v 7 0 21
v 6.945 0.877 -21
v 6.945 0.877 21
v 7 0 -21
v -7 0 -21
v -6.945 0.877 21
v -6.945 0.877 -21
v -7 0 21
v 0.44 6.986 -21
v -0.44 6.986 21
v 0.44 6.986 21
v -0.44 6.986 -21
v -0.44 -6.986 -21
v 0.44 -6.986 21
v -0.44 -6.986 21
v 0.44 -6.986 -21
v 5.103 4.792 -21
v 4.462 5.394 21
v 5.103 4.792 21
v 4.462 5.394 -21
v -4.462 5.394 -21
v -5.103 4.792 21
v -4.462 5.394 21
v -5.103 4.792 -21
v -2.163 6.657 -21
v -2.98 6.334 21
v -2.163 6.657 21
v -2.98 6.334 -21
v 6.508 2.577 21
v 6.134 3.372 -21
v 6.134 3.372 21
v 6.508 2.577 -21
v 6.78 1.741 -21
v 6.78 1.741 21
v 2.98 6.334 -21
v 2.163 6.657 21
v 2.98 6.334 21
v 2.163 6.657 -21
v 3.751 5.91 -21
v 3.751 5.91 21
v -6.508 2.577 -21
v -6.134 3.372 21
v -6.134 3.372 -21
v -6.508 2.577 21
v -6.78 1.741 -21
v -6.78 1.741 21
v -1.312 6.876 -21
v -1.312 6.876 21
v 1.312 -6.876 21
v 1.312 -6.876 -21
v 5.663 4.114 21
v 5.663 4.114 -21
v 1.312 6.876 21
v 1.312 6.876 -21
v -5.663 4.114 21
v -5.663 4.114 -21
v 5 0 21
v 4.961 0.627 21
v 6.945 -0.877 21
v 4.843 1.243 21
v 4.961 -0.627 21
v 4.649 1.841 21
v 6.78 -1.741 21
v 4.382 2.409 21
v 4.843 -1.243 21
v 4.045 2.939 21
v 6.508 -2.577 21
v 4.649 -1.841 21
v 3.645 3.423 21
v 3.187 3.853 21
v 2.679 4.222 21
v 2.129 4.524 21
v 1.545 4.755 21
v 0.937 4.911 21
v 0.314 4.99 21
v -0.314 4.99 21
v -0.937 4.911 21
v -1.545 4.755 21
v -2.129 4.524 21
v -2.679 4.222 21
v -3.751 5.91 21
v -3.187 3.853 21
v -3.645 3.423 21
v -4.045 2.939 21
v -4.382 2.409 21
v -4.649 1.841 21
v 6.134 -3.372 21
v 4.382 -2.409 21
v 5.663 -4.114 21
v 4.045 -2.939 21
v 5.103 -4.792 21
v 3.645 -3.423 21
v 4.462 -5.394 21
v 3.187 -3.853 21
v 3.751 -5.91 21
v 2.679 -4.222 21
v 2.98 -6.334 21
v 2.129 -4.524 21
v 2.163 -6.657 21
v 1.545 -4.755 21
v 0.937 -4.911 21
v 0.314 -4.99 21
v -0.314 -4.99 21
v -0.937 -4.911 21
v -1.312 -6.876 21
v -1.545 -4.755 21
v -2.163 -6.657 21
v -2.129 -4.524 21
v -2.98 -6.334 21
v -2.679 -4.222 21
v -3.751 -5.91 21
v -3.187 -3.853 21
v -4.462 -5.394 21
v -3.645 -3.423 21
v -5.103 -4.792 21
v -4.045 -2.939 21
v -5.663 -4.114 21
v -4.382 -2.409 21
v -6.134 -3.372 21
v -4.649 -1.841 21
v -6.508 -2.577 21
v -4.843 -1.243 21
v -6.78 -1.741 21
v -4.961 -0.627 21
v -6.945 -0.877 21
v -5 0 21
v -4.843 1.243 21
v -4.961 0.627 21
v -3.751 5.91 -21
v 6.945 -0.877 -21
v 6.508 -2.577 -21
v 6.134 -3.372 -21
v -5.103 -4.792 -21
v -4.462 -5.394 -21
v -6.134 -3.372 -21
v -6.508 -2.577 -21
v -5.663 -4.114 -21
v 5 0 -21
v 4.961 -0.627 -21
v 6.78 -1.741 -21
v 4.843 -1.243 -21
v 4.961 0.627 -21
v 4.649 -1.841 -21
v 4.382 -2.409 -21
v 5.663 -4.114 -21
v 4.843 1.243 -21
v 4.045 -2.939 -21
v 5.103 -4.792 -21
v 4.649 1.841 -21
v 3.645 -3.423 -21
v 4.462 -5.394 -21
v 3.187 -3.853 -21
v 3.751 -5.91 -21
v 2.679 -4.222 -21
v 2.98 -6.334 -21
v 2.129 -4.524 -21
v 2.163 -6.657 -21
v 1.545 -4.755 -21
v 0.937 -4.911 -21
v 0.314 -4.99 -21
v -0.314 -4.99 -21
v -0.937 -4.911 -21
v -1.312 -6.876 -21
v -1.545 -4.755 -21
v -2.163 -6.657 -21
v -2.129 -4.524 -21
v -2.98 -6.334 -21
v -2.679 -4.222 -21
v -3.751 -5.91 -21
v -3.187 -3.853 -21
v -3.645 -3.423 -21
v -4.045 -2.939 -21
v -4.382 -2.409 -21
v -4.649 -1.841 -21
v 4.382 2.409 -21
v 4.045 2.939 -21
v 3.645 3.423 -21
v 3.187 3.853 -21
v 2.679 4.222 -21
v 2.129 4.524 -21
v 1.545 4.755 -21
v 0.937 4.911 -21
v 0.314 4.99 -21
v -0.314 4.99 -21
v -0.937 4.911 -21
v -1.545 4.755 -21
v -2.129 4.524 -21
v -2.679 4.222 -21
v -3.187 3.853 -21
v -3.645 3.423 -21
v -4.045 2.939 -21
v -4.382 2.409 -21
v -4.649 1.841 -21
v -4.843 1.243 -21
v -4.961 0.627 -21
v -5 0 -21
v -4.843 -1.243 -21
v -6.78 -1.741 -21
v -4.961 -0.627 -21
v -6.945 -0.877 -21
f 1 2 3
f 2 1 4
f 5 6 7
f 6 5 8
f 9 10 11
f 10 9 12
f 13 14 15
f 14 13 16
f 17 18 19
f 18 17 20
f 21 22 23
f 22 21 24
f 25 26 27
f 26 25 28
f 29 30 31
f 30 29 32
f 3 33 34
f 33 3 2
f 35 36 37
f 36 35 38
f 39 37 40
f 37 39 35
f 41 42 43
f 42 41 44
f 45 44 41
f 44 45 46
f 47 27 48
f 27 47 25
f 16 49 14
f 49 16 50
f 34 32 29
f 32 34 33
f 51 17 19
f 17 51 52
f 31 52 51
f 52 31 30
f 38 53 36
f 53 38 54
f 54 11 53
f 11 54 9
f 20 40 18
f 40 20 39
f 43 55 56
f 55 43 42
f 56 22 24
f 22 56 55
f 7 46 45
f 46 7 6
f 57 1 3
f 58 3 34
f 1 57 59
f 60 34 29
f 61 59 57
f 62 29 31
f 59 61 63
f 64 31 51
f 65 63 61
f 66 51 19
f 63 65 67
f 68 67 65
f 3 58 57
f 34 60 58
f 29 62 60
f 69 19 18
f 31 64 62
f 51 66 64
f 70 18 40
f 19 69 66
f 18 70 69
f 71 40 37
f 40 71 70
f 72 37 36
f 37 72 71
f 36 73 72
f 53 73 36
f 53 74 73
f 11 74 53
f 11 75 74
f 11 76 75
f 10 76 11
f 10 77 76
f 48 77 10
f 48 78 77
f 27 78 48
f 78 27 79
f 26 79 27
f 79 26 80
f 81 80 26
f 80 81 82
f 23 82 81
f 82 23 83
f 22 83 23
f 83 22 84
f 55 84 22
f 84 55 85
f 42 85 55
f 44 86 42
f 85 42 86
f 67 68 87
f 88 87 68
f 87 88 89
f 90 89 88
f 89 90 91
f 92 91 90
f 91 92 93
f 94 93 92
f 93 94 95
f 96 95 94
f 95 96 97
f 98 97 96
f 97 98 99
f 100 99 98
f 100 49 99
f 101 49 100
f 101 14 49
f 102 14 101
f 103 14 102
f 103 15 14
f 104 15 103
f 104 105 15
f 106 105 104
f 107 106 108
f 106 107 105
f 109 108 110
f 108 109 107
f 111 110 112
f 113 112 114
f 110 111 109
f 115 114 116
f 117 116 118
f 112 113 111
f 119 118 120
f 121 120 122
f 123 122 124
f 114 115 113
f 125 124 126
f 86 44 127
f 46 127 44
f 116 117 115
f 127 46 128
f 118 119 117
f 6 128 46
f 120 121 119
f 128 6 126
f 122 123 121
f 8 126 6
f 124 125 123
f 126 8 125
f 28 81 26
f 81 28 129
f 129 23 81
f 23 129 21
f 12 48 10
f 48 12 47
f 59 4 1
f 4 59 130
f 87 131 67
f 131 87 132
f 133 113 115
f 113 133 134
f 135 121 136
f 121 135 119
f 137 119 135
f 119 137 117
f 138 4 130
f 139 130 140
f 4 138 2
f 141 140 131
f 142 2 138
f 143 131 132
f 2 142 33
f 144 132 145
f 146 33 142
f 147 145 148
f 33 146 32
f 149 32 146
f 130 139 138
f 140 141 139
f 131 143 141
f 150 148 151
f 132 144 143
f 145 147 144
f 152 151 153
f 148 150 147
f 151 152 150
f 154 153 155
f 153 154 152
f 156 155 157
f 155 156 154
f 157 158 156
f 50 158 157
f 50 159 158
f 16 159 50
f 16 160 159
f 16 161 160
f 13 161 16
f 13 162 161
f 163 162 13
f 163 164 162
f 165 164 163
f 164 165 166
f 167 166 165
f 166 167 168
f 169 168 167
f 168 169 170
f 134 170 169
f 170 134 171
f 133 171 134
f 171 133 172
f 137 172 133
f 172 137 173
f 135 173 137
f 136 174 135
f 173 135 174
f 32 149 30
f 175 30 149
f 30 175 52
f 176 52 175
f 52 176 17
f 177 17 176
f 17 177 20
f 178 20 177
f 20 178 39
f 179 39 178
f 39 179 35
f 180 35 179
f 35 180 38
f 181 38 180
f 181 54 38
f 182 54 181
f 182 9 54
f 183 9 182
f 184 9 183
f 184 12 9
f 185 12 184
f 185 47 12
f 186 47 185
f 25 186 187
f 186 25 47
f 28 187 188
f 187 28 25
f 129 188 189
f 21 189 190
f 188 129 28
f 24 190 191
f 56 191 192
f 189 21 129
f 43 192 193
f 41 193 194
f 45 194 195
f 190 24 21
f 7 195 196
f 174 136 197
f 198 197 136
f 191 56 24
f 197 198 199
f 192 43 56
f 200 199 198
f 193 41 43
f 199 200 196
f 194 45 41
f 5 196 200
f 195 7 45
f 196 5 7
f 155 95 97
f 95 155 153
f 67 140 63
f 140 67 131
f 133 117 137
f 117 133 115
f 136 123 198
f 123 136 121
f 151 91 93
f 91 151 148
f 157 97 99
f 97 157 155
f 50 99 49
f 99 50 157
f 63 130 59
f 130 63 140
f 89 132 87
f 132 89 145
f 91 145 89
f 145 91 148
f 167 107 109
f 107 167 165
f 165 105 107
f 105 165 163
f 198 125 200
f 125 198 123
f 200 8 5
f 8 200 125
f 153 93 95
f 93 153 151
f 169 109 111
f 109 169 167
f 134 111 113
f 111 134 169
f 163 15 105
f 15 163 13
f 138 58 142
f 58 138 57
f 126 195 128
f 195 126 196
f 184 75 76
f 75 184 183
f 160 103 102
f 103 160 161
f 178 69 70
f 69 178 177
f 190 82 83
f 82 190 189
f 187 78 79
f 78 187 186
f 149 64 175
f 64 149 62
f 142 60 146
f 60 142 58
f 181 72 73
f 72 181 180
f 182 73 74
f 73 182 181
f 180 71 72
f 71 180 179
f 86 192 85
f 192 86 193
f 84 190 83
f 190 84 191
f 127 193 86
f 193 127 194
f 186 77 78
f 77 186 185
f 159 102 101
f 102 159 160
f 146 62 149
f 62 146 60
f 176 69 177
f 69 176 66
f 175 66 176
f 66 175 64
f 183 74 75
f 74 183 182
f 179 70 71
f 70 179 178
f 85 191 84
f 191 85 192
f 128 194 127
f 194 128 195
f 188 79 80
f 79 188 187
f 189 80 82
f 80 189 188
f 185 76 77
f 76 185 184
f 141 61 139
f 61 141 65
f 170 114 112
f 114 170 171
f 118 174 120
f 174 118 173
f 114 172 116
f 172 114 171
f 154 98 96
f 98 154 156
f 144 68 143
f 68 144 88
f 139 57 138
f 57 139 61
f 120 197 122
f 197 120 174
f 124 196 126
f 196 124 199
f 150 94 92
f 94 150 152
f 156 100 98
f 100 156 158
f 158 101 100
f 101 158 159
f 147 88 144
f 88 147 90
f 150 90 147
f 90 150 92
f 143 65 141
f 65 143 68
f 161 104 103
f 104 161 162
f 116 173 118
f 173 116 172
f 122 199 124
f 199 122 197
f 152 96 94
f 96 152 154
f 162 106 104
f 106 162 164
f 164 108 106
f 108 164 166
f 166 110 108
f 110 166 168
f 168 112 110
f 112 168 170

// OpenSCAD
$fn = 50;


difference() {
	union() {
		translate(v = [0, 0, -21.0000000000]) {
			cylinder(h = 42, r = 7.0000000000);
		}
	}
	union() {
		translate(v = [0, 0, -100.0000000000]) {
			cylinder(h = 200, r = 5);
		}
	}
}
